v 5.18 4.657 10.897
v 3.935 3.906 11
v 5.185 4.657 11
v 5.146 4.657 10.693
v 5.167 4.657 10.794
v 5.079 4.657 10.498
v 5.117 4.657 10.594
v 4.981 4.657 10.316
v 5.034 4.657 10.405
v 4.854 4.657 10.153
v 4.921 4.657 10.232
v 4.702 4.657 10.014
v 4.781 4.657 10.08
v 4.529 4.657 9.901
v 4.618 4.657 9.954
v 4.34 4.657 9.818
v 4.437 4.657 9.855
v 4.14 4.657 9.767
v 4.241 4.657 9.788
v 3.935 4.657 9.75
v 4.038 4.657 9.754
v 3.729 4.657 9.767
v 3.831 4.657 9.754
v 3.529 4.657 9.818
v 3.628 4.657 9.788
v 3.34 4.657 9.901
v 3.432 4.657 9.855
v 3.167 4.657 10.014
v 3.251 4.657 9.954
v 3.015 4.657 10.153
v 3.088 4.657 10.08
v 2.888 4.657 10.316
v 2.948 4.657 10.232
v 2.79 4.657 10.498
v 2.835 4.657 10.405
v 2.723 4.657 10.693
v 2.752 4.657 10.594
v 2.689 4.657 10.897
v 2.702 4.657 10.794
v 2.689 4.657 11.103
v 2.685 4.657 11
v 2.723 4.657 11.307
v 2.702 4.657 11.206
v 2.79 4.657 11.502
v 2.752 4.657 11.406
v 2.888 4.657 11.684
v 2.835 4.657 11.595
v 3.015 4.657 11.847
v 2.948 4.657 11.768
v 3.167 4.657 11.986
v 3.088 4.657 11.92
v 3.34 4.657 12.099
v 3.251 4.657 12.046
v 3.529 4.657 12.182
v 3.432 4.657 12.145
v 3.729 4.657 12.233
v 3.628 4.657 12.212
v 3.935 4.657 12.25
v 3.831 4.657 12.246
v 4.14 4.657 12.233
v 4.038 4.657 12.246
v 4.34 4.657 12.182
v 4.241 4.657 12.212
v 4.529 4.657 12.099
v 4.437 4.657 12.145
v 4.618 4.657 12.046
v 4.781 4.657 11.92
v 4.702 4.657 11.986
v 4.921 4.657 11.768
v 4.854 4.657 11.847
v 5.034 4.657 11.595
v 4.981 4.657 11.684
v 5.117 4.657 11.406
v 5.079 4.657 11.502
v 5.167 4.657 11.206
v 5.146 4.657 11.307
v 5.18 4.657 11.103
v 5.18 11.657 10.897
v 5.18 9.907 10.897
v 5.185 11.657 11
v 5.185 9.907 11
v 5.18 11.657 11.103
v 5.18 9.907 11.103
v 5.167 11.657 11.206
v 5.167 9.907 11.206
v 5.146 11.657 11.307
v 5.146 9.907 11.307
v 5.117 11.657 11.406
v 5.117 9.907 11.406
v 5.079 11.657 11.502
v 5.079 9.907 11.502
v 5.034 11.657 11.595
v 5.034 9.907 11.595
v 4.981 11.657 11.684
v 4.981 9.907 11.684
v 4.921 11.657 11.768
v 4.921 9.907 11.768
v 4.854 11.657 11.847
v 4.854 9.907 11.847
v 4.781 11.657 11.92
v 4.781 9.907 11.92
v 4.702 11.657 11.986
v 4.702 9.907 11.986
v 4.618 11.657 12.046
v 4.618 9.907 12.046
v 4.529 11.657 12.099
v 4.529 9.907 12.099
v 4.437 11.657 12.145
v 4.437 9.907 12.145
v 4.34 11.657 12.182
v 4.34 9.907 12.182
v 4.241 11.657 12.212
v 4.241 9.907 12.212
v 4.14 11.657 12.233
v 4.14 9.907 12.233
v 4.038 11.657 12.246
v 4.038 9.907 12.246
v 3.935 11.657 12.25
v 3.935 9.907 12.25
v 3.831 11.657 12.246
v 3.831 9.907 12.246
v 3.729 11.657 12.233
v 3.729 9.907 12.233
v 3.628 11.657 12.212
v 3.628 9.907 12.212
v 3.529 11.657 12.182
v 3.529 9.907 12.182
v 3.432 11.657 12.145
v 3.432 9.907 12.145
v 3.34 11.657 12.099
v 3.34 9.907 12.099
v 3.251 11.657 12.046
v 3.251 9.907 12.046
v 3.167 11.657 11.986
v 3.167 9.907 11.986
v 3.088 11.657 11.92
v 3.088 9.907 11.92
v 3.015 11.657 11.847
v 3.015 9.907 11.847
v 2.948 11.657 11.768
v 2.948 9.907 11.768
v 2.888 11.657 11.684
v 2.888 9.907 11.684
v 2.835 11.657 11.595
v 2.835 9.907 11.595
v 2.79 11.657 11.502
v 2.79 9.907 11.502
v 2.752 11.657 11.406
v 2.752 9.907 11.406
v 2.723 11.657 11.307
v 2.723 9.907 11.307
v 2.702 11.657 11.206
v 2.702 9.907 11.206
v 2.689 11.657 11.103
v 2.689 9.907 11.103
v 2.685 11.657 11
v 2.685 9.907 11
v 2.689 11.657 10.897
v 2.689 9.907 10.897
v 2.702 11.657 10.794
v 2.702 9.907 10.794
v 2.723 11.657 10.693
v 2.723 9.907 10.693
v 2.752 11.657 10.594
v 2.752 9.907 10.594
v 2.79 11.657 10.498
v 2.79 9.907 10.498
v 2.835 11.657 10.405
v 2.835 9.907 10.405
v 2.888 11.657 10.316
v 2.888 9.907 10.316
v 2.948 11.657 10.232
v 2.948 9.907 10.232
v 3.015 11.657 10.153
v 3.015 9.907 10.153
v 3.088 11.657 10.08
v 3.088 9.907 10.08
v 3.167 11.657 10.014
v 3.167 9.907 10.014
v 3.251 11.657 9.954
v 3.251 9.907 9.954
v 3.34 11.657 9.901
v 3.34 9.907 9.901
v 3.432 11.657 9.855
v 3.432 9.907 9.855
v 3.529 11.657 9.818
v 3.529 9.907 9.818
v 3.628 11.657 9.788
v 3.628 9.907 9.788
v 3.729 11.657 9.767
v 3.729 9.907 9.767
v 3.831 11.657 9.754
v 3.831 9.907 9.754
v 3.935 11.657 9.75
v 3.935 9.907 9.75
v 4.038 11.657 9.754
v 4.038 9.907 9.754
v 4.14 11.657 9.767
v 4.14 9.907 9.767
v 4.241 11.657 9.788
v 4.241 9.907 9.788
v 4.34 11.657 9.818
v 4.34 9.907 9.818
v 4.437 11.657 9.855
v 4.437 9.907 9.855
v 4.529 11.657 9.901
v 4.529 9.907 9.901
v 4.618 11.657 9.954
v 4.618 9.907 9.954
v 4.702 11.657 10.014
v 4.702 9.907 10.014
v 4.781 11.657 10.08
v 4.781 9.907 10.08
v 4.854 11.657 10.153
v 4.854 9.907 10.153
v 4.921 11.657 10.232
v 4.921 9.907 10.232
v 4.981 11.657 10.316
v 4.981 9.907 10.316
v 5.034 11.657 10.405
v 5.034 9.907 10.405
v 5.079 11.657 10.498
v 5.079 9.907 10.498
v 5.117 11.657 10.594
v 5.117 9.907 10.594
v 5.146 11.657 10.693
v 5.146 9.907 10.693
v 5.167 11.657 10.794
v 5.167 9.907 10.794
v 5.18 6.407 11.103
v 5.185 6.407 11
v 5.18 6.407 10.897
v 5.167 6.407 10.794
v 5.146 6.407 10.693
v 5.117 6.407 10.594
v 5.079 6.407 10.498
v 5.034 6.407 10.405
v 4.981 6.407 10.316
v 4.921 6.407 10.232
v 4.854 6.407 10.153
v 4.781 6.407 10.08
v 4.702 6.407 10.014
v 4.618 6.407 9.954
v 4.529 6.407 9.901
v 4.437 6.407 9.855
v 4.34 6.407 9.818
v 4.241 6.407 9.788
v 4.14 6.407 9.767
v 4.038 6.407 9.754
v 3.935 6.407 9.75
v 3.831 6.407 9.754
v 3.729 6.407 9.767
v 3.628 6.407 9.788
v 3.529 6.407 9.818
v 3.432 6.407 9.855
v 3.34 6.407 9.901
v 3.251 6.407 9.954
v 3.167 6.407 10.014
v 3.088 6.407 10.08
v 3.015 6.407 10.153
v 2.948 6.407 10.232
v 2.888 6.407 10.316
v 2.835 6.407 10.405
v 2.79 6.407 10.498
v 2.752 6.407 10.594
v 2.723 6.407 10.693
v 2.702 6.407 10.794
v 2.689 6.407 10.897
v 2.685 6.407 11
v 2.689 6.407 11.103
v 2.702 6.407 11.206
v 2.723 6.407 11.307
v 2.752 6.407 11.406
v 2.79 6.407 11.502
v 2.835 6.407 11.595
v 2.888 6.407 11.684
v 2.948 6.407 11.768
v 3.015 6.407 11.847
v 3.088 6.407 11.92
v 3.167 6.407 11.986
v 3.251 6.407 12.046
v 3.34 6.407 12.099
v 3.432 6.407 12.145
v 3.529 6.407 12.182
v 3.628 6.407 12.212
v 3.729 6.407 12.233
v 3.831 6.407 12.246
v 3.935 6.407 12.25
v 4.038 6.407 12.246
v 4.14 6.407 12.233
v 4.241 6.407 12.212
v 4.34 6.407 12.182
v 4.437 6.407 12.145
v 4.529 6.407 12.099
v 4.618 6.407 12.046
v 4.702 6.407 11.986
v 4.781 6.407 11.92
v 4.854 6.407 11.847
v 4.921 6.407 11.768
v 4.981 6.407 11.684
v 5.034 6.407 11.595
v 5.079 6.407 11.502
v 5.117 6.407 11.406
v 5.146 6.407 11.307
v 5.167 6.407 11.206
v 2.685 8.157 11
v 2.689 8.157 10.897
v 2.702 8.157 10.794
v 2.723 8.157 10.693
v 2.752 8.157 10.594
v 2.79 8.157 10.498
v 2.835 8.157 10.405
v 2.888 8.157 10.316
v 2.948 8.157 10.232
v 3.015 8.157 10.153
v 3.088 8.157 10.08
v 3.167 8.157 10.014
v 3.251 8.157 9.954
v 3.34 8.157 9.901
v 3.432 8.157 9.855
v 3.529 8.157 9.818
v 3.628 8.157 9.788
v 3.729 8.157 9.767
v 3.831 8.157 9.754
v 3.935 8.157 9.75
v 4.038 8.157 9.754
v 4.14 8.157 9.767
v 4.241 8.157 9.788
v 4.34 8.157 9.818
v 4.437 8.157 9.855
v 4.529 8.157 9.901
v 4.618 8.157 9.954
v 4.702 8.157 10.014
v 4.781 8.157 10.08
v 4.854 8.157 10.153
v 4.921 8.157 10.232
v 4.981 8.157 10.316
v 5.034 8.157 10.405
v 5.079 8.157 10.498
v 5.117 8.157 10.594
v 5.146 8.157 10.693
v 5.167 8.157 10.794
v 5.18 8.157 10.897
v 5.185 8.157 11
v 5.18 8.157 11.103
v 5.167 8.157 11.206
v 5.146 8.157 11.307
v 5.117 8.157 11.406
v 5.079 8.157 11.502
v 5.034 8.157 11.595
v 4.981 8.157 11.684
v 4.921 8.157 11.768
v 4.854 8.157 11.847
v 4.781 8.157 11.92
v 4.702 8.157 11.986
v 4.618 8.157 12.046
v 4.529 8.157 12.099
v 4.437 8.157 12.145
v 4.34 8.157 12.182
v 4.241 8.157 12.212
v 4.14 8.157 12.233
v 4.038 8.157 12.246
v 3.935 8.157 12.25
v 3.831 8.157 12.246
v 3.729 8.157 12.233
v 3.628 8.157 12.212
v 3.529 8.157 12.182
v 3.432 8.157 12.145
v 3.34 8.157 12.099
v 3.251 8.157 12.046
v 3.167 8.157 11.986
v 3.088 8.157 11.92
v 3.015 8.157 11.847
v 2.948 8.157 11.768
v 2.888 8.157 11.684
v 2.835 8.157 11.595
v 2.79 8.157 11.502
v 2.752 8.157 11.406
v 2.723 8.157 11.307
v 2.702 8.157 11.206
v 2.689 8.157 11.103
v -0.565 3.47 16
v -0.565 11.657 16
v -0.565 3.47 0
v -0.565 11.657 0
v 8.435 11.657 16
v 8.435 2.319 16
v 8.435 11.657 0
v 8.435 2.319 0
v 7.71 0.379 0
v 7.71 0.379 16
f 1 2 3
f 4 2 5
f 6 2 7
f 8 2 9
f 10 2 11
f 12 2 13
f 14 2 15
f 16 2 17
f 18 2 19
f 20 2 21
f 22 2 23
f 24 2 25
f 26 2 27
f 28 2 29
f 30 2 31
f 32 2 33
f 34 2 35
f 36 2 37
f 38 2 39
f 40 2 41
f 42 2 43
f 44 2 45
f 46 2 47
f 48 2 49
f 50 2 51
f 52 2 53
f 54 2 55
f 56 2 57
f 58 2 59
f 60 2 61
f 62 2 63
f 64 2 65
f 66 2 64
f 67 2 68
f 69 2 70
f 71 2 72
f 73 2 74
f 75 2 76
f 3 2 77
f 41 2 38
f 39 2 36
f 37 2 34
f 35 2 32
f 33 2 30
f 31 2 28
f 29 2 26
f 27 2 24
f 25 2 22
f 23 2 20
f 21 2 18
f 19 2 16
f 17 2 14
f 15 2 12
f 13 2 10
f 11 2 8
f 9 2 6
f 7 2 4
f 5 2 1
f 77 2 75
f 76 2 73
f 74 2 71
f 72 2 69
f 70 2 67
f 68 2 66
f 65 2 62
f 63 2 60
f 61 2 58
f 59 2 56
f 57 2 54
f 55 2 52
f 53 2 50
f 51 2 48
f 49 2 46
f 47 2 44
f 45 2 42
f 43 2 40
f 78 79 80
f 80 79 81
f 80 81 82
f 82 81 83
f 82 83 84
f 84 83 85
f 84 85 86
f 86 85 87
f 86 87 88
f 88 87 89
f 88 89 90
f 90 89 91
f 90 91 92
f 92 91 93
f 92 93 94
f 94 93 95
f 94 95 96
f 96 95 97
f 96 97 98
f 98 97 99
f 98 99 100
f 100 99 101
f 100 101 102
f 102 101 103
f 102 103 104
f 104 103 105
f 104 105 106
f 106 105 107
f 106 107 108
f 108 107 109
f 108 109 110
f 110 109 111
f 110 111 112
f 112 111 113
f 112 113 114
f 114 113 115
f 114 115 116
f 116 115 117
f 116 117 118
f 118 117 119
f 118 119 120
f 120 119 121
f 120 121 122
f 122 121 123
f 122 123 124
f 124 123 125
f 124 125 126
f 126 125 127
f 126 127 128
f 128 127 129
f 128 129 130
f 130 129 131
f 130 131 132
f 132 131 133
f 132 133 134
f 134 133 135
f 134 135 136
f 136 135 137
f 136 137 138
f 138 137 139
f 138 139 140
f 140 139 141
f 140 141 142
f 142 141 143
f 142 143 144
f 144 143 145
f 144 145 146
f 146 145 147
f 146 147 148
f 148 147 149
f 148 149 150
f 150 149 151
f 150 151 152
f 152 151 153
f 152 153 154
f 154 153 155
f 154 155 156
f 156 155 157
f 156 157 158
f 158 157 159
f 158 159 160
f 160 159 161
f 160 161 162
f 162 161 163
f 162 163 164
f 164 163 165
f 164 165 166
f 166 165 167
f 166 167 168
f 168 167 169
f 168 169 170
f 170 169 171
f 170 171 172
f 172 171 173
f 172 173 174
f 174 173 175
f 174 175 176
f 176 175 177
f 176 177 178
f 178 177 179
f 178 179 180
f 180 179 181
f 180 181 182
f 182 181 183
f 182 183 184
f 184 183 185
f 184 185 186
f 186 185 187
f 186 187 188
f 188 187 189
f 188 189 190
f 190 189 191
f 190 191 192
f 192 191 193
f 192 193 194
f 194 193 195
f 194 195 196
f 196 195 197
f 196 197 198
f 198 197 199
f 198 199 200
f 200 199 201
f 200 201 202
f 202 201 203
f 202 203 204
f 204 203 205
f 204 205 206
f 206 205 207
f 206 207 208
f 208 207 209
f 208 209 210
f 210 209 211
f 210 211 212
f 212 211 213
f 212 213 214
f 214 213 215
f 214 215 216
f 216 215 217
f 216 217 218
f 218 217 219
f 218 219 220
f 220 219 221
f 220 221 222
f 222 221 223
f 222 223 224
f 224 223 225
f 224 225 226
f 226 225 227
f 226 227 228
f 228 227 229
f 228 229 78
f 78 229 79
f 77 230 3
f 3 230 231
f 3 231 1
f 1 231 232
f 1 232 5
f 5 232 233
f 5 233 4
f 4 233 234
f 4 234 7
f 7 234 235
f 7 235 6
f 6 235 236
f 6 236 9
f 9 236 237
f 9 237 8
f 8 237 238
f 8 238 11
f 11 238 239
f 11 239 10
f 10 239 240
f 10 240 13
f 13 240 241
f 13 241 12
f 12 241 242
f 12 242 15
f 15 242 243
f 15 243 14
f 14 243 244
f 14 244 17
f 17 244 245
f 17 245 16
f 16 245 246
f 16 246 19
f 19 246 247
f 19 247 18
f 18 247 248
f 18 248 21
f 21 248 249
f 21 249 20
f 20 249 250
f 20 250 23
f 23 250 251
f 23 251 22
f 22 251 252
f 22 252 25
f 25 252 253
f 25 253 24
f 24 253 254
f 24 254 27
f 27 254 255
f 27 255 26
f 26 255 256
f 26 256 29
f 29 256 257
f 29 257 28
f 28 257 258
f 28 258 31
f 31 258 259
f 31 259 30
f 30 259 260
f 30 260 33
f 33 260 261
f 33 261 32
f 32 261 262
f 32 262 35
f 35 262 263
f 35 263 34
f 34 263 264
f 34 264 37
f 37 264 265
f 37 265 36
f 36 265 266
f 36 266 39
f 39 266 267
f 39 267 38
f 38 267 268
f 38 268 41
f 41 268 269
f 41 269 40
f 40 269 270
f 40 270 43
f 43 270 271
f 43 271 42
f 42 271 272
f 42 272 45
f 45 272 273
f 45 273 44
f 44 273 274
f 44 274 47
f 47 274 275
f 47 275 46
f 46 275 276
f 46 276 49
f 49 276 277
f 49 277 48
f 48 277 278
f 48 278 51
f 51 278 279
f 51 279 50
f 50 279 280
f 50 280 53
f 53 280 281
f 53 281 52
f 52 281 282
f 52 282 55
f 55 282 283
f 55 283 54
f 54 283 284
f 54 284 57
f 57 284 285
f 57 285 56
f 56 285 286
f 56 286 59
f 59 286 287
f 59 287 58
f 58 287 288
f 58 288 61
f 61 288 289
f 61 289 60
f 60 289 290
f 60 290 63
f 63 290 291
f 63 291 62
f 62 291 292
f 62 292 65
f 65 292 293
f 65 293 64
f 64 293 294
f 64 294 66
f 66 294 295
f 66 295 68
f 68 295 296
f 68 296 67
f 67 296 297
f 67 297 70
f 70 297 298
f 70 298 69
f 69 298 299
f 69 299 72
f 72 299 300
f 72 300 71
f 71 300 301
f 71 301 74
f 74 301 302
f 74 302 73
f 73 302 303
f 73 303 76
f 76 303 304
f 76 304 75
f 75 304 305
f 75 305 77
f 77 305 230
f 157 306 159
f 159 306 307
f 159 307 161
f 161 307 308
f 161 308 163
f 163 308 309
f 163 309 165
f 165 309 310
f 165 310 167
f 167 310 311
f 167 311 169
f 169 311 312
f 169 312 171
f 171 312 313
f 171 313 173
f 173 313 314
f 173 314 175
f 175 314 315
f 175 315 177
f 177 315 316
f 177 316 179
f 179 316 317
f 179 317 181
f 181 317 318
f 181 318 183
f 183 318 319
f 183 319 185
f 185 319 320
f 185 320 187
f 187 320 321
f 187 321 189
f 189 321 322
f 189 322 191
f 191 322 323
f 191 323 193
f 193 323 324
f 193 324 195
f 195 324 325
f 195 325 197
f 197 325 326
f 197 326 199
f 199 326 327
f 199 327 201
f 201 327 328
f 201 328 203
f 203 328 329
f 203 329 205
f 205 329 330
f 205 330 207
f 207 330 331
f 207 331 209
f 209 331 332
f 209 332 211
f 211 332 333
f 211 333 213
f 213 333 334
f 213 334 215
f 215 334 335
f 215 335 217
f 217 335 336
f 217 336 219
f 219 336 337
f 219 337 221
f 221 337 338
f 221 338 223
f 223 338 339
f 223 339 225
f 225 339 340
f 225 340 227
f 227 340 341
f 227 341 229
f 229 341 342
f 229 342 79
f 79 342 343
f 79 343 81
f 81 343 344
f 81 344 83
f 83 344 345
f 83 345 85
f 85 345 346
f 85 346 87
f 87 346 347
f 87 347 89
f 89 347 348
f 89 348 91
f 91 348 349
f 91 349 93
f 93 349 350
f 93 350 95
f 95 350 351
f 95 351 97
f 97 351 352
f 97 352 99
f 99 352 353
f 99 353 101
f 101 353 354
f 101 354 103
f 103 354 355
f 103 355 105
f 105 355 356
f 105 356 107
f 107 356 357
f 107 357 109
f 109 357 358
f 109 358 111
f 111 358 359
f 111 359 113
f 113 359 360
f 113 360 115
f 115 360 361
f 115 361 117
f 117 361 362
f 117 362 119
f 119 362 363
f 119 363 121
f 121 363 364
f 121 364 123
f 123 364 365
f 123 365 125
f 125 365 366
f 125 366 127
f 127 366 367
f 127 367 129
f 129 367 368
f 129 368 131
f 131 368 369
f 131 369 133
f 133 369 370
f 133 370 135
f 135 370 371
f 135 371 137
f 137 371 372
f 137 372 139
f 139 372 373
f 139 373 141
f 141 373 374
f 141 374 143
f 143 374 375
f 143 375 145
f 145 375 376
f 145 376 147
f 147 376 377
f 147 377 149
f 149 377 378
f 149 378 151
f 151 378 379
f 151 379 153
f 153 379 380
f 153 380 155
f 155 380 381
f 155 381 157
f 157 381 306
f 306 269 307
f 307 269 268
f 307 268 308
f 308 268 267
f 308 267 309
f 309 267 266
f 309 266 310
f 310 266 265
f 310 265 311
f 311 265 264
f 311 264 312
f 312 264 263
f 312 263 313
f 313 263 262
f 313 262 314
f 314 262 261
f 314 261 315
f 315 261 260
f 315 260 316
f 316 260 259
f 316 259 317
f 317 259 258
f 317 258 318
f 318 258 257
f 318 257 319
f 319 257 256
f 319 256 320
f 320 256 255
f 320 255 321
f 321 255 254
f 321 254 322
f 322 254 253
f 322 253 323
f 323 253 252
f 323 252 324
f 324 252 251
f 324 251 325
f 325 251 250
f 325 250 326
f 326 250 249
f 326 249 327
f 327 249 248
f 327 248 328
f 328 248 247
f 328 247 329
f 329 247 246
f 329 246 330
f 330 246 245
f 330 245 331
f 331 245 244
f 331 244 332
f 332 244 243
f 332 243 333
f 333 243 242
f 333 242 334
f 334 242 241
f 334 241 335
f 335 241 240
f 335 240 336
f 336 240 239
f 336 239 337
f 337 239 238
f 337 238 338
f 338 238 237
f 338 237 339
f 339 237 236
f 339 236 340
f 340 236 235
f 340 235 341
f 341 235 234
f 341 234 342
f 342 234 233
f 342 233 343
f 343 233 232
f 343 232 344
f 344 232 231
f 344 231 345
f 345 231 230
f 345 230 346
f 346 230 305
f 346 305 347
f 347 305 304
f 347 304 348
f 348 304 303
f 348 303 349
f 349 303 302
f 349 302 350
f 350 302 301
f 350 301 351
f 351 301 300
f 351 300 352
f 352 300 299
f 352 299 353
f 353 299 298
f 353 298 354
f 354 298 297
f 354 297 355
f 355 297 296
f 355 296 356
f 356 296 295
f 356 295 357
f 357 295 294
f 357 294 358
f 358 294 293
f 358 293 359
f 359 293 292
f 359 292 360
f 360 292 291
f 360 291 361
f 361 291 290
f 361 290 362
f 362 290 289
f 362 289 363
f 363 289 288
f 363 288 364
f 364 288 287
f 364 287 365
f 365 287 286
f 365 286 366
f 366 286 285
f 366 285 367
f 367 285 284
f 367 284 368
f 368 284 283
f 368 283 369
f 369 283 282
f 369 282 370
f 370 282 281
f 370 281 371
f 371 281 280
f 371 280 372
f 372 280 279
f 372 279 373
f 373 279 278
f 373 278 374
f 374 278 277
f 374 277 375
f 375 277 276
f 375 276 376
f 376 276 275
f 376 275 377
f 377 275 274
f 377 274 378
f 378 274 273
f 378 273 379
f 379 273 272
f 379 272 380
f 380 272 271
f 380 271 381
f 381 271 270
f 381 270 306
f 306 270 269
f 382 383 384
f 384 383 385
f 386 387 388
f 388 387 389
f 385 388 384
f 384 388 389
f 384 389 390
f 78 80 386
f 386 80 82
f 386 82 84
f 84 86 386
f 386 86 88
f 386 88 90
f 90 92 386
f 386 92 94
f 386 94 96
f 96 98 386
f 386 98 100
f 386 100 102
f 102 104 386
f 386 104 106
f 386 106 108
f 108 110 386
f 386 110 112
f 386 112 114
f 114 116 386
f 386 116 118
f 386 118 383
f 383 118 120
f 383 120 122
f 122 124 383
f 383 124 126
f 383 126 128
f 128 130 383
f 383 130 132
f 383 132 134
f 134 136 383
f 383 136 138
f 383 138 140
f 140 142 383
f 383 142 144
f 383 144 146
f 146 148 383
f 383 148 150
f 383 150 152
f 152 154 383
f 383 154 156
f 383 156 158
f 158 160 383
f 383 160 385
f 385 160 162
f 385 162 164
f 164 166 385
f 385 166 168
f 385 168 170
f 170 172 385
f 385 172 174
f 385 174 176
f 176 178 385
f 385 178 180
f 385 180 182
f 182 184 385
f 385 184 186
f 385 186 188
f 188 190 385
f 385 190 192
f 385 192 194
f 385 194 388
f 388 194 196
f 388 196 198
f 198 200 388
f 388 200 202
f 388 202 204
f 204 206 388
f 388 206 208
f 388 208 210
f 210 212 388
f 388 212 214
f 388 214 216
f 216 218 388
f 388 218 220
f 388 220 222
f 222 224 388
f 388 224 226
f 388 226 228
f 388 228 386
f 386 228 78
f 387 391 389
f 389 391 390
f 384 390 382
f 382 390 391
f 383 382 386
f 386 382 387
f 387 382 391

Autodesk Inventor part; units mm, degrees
ref_plane "YZ Plane" through (0, 0, 0) normal (1, 0, 0) x (0, 1, 0)
ref_plane "XZ Plane" through (0, 0, 0) normal (0, 1, 0) x (-1, 0, 0)
ref_plane "XY Plane" through (0, 0, 0) normal (0, 0, 1) x (1, 0, 0)
sketch "Sketch2" plane through (0, 0, 0) normal (0, 0, 1) x (1, 0, 0)
  line L0 (-5.0655, 3.6572) -> (12.9345, 3.6572)
  line L1 (12.9345, 3.6572) -> (12.9345, -8.3428)
  line L2 (12.9345, -8.3428) -> (-5.0655, -8.3428)
  line L3 (-5.0655, -8.3428) -> (-5.0655, 3.6572)
  line L4 (8.9345, 3.6572) -> (7.7095, 0.3786)
  line L5 (7.7095, 0.3786) -> (-1.0655, 3.6572)
  line L6 (-1.0655, 3.6572) -> (-1.0655, 11.6572)
  line L7 (-1.0655, 11.6572) -> (8.9345, 11.6572)
  line L8 (8.9345, 11.6572) -> (8.9345, 3.6572)
  point P0 (0, 0)
  dimension "d0" = 18
  dimension "d1" = 12
  dimension "d2" = 3.5
  dimension "d3" = 4
  dimension "d4" = 4
  dimension "d5" = 110.487
  dimension "d6" = 8
extrude "Extrusion1" add sketch "Sketch2" along normal blind 16 contours L6 L7 L8 L0 | L0 L4 L5
sketch "Sketch3" plane through (0, 0, 16) normal (0, 0, 1) x (1, 0, 0)
  line L0 (-1.0655, 3.6572) -> (7.7095, 0.3786) projected
  line L1 (7.7095, 0.3786) -> (8.9345, 3.6572) projected
  line L2 (8.9345, 3.6572) -> (8.9345, 11.6572) projected
  line L3 (8.9345, 11.6572) -> (-1.0655, 11.6572) projected
  line L4 (-1.0655, 11.6572) -> (-1.0655, 3.6572) projected
  line L5 (-0.5655, 15.4431) -> (8.4345, 15.4431)
  line L6 (8.4345, 15.4431) -> (8.4345, -6.1671)
  line L7 (8.4345, -6.1671) -> (-0.5655, -6.1671)
  line L8 (-0.5655, -6.1671) -> (-0.5655, 15.4431)
  point P0 (0, 0)
  dimension "d9" = 0.5
  dimension "d10" = 0.5
extrude "Extrusion2" cut sketch "Sketch3" against normal through all contours L8 L3 L6 L1 L0 | L0 L1 L6 L7 L8 | L8 L5 L6 L3 keep common part
sketch "Sketch4" plane through (-0.5655, 11.6572, 16) normal (0, 1, 0) x (1, 0, 0)
  line L0 (0, 0) -> (0, 16) projected
  line L1 (9, 0) -> (0, 0) projected
  line L2 (9, 16) -> (9, 0) projected
  line L3 (9, 16) -> (0, 16) projected
  point P0 (0.5655, 16)
  point P1 (4.5, 5)
  dimension "d13" = 5
  dimension "d14" = 4.5
  dimension "d15" = 9
  dimension "d16" = 16
hole "Hole1" at (3.9345, 11.6572, 11) direction (0, -1, 0) diameter 2.5 depth 7 tip angle 118
equation "\"d14\" = 0.5 * d15"
properties part number "3DP_PLA_Measurement_Rail_Barrier"
